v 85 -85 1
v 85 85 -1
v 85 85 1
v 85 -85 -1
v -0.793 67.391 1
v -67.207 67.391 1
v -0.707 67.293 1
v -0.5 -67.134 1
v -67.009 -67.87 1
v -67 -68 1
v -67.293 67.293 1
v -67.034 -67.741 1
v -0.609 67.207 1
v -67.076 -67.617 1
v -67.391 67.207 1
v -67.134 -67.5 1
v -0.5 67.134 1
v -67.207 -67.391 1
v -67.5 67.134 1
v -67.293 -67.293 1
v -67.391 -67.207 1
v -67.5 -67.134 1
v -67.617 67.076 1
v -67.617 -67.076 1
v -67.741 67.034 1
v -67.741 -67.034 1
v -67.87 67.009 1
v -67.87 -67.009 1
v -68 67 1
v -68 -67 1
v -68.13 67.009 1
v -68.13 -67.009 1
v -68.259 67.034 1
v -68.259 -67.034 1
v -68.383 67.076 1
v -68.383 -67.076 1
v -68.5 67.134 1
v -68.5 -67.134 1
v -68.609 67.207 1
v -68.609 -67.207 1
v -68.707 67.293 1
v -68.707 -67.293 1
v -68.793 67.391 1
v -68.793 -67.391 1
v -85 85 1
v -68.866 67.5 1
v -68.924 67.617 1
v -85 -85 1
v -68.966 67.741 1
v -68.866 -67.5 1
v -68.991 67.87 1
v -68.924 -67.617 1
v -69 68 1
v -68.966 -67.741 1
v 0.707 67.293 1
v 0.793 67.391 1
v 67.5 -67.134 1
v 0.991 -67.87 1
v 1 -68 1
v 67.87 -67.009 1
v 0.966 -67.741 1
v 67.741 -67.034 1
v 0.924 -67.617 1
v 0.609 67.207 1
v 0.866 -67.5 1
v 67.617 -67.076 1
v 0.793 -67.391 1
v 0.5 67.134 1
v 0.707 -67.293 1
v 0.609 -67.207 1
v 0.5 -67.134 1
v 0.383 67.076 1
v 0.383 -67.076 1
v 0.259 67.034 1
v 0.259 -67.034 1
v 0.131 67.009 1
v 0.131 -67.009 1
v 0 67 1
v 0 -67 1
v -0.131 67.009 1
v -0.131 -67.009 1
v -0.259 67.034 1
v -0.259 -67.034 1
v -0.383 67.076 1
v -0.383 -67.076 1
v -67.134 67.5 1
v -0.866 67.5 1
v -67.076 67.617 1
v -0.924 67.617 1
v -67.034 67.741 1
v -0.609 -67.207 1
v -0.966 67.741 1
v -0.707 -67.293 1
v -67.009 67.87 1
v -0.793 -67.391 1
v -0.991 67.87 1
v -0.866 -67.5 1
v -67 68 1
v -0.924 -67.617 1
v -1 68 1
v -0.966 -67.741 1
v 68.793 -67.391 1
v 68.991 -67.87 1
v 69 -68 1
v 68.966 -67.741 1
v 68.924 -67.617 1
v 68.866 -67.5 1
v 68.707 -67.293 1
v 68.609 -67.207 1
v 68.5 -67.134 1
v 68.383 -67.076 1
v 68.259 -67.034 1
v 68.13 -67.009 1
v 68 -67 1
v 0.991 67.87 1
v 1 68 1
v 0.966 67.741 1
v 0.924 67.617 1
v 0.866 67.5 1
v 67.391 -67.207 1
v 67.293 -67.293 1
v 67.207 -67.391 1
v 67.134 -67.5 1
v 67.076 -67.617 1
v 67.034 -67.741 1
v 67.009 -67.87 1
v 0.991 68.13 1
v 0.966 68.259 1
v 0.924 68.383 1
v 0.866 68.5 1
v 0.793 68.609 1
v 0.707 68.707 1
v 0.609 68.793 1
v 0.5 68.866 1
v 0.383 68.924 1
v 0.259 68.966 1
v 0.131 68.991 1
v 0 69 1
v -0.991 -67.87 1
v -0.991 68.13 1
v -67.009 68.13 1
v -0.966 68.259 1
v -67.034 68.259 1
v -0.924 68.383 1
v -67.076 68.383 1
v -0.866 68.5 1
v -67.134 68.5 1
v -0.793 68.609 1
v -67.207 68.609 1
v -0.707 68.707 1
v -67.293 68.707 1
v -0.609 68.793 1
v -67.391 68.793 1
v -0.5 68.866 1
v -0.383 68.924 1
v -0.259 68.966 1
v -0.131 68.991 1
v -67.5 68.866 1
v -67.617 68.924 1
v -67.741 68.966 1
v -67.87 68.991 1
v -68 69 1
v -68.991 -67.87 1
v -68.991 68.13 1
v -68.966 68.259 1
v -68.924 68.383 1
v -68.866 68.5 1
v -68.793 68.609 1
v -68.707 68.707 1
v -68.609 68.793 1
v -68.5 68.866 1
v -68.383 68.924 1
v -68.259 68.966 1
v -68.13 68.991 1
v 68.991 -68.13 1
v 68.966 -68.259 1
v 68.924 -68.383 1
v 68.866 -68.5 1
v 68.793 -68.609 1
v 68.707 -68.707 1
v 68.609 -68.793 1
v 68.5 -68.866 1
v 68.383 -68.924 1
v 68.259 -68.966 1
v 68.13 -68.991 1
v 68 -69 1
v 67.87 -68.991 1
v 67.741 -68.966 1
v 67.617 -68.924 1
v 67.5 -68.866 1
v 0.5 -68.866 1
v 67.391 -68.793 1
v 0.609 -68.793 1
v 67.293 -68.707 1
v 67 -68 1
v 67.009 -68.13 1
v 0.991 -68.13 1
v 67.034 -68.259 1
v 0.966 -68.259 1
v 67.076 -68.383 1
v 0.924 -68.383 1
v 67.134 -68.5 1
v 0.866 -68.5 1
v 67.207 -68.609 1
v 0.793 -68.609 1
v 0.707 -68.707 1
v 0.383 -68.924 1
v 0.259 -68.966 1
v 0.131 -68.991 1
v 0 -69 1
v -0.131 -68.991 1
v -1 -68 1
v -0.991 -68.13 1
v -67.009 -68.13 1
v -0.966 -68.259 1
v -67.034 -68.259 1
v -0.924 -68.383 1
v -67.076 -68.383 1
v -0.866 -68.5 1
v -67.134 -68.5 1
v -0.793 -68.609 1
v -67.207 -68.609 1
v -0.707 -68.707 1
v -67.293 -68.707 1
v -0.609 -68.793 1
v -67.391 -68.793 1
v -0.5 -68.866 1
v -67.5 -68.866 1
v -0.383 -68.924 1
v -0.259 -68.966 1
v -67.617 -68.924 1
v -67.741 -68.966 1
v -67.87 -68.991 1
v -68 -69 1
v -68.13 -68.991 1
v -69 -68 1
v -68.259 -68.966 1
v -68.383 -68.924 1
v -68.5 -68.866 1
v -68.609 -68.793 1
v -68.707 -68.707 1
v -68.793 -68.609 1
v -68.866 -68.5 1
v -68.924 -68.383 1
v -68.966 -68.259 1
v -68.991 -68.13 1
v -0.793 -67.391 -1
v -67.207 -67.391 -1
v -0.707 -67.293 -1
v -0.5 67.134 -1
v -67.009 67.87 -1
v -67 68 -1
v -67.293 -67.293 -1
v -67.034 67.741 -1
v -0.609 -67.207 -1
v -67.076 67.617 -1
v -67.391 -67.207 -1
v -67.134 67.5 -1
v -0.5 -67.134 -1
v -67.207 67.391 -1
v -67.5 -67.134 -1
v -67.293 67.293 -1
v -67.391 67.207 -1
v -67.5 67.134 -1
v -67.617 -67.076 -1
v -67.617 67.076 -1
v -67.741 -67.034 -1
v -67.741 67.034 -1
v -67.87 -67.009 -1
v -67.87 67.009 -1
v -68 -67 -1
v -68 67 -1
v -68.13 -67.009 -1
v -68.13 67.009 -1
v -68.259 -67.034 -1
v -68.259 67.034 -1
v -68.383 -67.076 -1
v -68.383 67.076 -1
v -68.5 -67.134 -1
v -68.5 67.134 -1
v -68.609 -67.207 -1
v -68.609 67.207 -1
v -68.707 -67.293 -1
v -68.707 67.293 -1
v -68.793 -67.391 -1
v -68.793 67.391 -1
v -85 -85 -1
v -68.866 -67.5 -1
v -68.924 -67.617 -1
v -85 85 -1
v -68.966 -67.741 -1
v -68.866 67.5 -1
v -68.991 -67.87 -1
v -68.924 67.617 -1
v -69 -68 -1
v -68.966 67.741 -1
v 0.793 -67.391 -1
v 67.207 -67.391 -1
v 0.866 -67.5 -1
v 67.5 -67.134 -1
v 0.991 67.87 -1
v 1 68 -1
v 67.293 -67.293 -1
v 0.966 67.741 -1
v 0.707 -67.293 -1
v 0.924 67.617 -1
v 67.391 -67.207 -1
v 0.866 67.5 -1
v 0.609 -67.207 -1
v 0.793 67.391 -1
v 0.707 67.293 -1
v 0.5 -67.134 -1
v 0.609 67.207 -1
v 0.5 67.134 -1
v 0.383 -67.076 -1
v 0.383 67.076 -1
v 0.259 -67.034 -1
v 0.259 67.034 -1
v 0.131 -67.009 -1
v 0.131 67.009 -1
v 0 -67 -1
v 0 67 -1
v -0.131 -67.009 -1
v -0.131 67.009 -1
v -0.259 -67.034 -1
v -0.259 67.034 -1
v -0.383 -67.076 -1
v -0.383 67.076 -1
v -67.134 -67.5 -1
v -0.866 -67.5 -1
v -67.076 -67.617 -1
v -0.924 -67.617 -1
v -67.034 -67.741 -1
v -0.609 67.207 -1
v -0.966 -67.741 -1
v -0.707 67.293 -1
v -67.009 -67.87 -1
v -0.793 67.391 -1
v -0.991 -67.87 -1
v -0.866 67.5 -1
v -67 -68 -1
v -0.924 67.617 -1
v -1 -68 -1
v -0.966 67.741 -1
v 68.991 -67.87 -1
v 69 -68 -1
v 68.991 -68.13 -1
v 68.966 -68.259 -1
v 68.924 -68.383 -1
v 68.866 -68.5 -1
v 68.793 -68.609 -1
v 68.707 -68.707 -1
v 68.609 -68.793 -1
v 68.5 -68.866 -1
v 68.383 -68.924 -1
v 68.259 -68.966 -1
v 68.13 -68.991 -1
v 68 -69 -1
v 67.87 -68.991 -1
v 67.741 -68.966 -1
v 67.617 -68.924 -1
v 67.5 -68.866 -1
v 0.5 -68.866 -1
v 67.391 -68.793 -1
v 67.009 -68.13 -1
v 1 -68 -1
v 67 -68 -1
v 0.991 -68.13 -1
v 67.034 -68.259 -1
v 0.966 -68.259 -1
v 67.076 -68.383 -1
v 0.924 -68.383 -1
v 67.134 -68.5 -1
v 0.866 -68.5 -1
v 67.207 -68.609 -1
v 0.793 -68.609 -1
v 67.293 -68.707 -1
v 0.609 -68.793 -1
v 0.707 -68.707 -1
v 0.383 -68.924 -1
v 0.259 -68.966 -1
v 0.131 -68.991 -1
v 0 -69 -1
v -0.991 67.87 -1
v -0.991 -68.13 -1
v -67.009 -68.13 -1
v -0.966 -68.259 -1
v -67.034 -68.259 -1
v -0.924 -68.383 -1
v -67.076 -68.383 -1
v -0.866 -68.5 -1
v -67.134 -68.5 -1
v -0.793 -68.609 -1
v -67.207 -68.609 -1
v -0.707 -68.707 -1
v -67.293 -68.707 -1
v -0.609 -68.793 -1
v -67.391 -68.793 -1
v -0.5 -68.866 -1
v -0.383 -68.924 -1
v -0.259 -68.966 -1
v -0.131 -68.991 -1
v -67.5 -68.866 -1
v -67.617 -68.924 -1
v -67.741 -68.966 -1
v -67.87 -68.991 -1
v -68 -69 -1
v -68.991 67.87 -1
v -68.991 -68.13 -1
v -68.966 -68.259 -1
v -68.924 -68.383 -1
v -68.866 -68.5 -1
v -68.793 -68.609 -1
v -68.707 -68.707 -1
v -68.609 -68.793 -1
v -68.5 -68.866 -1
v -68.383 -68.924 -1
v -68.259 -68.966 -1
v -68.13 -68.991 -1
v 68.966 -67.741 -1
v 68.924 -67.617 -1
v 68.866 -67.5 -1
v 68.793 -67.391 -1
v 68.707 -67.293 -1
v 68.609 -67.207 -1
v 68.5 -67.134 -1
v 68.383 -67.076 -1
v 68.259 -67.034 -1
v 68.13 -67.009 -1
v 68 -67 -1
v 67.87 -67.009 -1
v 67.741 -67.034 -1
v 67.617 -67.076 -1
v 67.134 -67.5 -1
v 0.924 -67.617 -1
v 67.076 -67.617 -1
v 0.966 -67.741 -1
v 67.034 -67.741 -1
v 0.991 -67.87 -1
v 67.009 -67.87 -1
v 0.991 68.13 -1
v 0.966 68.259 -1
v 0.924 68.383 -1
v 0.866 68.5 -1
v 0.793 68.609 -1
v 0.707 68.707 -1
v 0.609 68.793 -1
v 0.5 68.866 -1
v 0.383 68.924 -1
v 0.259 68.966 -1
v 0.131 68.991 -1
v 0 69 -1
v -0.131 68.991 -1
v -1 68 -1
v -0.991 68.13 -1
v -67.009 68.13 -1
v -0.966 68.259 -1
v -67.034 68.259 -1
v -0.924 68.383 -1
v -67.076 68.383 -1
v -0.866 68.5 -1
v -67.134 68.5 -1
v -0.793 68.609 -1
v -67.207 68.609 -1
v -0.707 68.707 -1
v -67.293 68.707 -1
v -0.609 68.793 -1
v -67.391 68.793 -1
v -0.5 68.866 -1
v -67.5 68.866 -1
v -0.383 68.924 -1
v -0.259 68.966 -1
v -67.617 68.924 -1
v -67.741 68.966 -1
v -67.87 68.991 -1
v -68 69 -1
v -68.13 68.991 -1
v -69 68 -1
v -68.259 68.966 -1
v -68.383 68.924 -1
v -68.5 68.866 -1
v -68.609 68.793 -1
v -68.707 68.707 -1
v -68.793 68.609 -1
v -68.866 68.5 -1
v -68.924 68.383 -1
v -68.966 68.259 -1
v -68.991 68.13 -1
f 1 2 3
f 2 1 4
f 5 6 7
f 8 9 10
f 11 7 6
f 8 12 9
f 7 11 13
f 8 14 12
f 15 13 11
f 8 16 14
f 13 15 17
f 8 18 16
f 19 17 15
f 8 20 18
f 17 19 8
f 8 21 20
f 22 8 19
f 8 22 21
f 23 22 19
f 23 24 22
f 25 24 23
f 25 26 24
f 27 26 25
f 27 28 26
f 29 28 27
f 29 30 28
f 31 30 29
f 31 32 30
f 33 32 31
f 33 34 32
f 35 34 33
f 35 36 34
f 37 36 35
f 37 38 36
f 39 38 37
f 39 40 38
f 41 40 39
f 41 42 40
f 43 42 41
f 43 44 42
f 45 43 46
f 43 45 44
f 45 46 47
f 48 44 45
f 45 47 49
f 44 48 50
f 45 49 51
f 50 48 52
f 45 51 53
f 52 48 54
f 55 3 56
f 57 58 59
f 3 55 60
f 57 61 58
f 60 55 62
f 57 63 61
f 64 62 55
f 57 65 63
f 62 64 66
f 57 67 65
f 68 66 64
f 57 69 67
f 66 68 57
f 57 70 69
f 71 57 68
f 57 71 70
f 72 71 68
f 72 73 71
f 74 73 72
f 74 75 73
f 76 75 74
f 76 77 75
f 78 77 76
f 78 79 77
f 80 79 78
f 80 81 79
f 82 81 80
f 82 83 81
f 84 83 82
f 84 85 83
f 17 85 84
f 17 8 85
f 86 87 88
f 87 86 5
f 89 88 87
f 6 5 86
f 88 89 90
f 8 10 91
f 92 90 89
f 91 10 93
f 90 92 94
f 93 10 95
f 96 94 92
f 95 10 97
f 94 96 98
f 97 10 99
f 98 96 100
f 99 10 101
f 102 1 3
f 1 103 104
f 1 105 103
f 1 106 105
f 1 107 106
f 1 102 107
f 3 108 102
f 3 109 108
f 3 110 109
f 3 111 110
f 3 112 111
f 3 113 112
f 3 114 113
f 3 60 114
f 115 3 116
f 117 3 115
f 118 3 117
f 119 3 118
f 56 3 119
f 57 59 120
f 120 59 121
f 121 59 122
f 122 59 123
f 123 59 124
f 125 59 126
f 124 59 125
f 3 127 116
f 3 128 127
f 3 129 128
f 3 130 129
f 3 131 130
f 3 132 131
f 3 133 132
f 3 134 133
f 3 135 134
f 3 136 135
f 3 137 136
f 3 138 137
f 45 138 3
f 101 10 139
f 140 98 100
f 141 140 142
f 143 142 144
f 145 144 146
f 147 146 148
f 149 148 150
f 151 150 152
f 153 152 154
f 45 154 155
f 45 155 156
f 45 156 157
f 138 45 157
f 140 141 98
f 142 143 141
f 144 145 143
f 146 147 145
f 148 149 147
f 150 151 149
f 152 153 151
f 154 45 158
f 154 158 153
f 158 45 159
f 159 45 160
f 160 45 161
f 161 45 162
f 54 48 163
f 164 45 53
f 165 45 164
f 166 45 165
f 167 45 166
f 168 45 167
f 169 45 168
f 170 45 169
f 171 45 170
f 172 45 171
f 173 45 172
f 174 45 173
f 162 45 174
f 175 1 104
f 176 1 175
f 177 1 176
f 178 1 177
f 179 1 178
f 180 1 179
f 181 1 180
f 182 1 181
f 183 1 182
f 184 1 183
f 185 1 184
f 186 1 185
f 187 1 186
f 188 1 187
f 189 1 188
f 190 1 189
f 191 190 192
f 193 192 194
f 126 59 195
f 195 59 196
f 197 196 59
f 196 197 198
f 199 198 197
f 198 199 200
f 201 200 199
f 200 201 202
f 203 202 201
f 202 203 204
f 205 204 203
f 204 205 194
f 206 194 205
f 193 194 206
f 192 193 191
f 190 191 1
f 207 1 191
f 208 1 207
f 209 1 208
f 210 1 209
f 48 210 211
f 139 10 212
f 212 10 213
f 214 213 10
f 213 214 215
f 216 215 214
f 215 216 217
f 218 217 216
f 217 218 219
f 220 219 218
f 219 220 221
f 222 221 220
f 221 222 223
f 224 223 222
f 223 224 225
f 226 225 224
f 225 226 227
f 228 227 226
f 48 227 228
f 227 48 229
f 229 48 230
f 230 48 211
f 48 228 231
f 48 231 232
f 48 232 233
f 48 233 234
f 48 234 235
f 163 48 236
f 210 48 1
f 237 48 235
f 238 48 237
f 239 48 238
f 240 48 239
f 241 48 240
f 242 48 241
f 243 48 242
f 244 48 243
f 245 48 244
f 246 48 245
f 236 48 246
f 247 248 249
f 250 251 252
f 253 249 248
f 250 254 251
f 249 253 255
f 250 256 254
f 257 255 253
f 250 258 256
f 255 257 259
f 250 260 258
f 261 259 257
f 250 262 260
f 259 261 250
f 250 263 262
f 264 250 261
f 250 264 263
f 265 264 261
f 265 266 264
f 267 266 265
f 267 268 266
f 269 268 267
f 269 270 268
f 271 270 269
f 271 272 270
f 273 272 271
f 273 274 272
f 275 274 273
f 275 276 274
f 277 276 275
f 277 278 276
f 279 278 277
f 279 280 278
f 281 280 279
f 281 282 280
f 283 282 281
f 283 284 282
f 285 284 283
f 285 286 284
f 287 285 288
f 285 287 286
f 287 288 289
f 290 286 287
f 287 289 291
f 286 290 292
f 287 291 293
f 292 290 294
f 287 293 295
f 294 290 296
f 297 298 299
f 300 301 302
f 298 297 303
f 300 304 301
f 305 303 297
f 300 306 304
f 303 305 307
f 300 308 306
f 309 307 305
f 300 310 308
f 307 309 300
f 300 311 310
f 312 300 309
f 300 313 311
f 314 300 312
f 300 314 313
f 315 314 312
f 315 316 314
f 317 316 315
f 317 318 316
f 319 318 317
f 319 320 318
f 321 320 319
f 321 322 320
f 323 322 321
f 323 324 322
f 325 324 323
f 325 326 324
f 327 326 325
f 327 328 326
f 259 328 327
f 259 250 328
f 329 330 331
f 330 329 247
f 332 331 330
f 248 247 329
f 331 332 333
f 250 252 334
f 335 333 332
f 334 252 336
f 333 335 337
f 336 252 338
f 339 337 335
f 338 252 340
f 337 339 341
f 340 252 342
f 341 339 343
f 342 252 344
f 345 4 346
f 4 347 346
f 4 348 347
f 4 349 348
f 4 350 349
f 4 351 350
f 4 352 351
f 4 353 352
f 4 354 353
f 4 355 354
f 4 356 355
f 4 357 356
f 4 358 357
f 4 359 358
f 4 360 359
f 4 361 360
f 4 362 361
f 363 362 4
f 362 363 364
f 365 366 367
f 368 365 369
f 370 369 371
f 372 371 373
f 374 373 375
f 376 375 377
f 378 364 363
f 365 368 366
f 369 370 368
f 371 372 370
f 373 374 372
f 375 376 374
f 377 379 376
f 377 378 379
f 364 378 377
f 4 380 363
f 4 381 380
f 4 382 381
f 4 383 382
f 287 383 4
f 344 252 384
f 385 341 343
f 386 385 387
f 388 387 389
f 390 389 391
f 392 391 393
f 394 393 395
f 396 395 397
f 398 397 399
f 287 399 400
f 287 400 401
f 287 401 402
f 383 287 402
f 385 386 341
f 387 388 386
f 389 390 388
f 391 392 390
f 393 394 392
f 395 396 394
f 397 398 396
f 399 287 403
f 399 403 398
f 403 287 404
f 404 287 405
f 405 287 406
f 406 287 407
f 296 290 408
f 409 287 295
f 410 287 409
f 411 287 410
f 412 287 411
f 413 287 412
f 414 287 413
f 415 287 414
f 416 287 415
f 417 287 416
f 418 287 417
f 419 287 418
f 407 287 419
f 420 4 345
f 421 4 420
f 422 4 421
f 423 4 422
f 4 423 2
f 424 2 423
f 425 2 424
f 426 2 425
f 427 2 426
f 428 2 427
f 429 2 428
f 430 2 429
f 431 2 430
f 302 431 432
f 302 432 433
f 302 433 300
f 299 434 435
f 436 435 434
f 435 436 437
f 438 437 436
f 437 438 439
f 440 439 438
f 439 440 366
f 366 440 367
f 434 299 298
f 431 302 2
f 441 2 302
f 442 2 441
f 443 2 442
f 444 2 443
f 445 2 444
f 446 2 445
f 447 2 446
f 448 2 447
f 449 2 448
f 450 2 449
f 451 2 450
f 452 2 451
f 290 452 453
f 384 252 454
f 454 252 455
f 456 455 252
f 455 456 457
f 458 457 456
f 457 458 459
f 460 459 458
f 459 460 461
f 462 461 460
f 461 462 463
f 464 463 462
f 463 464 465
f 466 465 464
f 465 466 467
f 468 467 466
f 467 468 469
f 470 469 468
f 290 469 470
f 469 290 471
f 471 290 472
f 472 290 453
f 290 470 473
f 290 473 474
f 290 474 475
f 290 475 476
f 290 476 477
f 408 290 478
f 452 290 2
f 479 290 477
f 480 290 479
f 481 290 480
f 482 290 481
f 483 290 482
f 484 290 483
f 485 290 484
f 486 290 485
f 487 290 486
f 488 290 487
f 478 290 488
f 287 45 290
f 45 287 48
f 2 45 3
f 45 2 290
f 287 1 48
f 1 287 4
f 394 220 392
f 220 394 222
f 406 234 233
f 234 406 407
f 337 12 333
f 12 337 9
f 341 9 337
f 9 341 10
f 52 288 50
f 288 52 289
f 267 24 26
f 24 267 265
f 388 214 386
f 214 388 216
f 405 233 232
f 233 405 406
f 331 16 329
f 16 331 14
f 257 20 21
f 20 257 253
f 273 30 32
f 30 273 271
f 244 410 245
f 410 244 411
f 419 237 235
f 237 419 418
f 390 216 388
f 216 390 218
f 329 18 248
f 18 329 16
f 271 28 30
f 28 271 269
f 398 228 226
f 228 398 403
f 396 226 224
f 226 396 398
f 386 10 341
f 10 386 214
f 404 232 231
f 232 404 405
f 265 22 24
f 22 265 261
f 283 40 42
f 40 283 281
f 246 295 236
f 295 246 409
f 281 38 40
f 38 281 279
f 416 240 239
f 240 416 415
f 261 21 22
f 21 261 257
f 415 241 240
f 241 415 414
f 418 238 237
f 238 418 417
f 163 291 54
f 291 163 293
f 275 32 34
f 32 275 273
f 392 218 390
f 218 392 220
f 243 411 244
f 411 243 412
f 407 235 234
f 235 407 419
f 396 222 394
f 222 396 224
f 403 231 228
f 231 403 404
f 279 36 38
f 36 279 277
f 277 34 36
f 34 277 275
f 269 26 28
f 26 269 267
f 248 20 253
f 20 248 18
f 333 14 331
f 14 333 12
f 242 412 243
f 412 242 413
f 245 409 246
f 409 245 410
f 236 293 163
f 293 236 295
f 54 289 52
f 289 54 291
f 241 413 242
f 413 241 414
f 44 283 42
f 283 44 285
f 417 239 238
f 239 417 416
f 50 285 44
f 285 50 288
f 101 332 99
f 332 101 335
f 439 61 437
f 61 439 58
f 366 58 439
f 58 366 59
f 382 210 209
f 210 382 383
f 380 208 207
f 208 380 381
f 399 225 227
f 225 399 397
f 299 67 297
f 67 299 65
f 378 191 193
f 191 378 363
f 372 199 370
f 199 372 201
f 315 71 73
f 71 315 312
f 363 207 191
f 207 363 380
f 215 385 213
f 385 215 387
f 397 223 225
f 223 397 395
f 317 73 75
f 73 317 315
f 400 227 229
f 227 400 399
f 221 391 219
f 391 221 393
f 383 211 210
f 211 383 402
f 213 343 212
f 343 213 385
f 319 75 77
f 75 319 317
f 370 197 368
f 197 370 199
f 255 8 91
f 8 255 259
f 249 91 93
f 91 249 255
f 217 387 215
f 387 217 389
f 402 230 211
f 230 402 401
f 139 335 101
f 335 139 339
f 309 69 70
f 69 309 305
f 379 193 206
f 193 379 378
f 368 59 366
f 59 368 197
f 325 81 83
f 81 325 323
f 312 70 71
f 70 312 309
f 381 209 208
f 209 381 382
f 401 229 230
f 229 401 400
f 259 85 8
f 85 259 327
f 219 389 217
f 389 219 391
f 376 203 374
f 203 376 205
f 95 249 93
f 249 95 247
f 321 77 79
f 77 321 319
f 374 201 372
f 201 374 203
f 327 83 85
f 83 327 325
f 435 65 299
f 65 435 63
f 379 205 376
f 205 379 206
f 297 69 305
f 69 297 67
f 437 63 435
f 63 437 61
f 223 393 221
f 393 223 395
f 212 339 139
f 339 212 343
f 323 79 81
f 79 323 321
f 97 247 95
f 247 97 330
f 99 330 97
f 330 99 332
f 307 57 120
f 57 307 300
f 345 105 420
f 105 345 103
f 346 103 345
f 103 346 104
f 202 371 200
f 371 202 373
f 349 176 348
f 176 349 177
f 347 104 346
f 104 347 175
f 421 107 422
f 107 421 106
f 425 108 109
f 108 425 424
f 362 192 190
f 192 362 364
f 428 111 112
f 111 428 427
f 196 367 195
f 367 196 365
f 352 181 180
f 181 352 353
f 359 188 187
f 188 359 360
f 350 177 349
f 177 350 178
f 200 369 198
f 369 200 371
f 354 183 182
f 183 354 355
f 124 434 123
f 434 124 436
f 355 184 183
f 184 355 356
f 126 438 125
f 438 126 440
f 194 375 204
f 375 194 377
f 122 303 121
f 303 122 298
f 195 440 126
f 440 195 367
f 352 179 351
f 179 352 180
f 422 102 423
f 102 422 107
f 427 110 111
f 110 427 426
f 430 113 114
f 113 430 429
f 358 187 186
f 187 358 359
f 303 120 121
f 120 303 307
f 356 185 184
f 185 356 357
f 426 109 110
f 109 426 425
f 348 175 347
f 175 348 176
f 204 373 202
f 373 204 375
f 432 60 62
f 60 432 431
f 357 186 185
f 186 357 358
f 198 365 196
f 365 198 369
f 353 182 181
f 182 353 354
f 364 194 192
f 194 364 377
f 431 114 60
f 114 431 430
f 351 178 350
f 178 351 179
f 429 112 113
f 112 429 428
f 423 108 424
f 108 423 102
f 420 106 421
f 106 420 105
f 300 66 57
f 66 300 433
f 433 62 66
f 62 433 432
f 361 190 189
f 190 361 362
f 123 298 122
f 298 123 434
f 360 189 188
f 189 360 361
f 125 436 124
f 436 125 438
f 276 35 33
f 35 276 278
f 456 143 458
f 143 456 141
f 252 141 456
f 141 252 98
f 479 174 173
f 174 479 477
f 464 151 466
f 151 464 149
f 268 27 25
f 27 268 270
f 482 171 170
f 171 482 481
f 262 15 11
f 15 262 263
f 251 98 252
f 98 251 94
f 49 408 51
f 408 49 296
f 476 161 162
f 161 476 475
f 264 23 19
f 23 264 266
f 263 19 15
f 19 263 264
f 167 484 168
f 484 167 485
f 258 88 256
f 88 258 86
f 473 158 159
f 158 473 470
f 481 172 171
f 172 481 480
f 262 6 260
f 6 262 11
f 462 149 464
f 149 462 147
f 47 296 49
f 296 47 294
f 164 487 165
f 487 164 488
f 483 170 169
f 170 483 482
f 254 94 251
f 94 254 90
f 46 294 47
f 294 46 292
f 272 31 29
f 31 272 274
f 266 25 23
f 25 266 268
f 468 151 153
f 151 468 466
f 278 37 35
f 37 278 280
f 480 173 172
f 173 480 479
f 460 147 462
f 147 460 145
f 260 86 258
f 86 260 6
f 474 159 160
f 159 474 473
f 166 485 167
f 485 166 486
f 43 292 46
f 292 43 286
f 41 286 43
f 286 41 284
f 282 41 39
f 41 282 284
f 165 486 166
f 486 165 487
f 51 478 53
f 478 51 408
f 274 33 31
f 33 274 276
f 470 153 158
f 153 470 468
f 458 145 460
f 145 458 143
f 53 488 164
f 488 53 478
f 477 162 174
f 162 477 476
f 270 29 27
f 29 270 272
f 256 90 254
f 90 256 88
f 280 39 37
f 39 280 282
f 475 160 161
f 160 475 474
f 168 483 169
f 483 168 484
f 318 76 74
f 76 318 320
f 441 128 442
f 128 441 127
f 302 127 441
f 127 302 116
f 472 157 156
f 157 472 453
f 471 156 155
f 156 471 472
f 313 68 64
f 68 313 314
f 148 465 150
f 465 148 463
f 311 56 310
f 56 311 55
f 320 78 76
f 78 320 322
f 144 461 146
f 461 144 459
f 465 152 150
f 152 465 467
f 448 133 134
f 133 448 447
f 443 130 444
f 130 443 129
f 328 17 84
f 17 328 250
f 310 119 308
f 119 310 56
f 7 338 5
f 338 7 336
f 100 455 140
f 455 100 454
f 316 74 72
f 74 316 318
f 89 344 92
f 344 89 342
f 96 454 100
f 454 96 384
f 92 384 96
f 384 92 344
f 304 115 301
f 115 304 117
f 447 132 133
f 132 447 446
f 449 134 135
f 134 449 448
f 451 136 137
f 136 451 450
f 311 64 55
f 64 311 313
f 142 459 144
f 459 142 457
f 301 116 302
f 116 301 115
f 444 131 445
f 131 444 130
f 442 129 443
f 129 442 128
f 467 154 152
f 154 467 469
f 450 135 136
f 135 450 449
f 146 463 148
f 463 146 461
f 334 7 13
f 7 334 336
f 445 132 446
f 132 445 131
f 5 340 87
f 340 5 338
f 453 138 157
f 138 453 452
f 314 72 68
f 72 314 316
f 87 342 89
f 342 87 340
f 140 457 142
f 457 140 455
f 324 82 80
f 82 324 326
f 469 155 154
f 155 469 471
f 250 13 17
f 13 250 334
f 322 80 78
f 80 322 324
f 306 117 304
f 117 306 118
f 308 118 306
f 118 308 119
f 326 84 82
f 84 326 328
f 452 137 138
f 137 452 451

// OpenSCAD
// ========================================
// a 170 x 170 x 2 mm plate with five 2 mm holes
// NeuroCAD canonical IR; dimensions are millimetres
// ========================================
$fn = 48;

difference() {
  cube(size=[170, 170, 2], center=true);
  translate([-68, -68, 0]) {
    cylinder(r=1, h=4, center=true);
  }
  translate([0, -68, 0]) {
    cylinder(r=1, h=4, center=true);
  }
  translate([68, -68, 0]) {
    cylinder(r=1, h=4, center=true);
  }
  translate([-68, 68, 0]) {
    cylinder(r=1, h=4, center=true);
  }
  translate([0, 68, 0]) {
    cylinder(r=1, h=4, center=true);
  }
}
